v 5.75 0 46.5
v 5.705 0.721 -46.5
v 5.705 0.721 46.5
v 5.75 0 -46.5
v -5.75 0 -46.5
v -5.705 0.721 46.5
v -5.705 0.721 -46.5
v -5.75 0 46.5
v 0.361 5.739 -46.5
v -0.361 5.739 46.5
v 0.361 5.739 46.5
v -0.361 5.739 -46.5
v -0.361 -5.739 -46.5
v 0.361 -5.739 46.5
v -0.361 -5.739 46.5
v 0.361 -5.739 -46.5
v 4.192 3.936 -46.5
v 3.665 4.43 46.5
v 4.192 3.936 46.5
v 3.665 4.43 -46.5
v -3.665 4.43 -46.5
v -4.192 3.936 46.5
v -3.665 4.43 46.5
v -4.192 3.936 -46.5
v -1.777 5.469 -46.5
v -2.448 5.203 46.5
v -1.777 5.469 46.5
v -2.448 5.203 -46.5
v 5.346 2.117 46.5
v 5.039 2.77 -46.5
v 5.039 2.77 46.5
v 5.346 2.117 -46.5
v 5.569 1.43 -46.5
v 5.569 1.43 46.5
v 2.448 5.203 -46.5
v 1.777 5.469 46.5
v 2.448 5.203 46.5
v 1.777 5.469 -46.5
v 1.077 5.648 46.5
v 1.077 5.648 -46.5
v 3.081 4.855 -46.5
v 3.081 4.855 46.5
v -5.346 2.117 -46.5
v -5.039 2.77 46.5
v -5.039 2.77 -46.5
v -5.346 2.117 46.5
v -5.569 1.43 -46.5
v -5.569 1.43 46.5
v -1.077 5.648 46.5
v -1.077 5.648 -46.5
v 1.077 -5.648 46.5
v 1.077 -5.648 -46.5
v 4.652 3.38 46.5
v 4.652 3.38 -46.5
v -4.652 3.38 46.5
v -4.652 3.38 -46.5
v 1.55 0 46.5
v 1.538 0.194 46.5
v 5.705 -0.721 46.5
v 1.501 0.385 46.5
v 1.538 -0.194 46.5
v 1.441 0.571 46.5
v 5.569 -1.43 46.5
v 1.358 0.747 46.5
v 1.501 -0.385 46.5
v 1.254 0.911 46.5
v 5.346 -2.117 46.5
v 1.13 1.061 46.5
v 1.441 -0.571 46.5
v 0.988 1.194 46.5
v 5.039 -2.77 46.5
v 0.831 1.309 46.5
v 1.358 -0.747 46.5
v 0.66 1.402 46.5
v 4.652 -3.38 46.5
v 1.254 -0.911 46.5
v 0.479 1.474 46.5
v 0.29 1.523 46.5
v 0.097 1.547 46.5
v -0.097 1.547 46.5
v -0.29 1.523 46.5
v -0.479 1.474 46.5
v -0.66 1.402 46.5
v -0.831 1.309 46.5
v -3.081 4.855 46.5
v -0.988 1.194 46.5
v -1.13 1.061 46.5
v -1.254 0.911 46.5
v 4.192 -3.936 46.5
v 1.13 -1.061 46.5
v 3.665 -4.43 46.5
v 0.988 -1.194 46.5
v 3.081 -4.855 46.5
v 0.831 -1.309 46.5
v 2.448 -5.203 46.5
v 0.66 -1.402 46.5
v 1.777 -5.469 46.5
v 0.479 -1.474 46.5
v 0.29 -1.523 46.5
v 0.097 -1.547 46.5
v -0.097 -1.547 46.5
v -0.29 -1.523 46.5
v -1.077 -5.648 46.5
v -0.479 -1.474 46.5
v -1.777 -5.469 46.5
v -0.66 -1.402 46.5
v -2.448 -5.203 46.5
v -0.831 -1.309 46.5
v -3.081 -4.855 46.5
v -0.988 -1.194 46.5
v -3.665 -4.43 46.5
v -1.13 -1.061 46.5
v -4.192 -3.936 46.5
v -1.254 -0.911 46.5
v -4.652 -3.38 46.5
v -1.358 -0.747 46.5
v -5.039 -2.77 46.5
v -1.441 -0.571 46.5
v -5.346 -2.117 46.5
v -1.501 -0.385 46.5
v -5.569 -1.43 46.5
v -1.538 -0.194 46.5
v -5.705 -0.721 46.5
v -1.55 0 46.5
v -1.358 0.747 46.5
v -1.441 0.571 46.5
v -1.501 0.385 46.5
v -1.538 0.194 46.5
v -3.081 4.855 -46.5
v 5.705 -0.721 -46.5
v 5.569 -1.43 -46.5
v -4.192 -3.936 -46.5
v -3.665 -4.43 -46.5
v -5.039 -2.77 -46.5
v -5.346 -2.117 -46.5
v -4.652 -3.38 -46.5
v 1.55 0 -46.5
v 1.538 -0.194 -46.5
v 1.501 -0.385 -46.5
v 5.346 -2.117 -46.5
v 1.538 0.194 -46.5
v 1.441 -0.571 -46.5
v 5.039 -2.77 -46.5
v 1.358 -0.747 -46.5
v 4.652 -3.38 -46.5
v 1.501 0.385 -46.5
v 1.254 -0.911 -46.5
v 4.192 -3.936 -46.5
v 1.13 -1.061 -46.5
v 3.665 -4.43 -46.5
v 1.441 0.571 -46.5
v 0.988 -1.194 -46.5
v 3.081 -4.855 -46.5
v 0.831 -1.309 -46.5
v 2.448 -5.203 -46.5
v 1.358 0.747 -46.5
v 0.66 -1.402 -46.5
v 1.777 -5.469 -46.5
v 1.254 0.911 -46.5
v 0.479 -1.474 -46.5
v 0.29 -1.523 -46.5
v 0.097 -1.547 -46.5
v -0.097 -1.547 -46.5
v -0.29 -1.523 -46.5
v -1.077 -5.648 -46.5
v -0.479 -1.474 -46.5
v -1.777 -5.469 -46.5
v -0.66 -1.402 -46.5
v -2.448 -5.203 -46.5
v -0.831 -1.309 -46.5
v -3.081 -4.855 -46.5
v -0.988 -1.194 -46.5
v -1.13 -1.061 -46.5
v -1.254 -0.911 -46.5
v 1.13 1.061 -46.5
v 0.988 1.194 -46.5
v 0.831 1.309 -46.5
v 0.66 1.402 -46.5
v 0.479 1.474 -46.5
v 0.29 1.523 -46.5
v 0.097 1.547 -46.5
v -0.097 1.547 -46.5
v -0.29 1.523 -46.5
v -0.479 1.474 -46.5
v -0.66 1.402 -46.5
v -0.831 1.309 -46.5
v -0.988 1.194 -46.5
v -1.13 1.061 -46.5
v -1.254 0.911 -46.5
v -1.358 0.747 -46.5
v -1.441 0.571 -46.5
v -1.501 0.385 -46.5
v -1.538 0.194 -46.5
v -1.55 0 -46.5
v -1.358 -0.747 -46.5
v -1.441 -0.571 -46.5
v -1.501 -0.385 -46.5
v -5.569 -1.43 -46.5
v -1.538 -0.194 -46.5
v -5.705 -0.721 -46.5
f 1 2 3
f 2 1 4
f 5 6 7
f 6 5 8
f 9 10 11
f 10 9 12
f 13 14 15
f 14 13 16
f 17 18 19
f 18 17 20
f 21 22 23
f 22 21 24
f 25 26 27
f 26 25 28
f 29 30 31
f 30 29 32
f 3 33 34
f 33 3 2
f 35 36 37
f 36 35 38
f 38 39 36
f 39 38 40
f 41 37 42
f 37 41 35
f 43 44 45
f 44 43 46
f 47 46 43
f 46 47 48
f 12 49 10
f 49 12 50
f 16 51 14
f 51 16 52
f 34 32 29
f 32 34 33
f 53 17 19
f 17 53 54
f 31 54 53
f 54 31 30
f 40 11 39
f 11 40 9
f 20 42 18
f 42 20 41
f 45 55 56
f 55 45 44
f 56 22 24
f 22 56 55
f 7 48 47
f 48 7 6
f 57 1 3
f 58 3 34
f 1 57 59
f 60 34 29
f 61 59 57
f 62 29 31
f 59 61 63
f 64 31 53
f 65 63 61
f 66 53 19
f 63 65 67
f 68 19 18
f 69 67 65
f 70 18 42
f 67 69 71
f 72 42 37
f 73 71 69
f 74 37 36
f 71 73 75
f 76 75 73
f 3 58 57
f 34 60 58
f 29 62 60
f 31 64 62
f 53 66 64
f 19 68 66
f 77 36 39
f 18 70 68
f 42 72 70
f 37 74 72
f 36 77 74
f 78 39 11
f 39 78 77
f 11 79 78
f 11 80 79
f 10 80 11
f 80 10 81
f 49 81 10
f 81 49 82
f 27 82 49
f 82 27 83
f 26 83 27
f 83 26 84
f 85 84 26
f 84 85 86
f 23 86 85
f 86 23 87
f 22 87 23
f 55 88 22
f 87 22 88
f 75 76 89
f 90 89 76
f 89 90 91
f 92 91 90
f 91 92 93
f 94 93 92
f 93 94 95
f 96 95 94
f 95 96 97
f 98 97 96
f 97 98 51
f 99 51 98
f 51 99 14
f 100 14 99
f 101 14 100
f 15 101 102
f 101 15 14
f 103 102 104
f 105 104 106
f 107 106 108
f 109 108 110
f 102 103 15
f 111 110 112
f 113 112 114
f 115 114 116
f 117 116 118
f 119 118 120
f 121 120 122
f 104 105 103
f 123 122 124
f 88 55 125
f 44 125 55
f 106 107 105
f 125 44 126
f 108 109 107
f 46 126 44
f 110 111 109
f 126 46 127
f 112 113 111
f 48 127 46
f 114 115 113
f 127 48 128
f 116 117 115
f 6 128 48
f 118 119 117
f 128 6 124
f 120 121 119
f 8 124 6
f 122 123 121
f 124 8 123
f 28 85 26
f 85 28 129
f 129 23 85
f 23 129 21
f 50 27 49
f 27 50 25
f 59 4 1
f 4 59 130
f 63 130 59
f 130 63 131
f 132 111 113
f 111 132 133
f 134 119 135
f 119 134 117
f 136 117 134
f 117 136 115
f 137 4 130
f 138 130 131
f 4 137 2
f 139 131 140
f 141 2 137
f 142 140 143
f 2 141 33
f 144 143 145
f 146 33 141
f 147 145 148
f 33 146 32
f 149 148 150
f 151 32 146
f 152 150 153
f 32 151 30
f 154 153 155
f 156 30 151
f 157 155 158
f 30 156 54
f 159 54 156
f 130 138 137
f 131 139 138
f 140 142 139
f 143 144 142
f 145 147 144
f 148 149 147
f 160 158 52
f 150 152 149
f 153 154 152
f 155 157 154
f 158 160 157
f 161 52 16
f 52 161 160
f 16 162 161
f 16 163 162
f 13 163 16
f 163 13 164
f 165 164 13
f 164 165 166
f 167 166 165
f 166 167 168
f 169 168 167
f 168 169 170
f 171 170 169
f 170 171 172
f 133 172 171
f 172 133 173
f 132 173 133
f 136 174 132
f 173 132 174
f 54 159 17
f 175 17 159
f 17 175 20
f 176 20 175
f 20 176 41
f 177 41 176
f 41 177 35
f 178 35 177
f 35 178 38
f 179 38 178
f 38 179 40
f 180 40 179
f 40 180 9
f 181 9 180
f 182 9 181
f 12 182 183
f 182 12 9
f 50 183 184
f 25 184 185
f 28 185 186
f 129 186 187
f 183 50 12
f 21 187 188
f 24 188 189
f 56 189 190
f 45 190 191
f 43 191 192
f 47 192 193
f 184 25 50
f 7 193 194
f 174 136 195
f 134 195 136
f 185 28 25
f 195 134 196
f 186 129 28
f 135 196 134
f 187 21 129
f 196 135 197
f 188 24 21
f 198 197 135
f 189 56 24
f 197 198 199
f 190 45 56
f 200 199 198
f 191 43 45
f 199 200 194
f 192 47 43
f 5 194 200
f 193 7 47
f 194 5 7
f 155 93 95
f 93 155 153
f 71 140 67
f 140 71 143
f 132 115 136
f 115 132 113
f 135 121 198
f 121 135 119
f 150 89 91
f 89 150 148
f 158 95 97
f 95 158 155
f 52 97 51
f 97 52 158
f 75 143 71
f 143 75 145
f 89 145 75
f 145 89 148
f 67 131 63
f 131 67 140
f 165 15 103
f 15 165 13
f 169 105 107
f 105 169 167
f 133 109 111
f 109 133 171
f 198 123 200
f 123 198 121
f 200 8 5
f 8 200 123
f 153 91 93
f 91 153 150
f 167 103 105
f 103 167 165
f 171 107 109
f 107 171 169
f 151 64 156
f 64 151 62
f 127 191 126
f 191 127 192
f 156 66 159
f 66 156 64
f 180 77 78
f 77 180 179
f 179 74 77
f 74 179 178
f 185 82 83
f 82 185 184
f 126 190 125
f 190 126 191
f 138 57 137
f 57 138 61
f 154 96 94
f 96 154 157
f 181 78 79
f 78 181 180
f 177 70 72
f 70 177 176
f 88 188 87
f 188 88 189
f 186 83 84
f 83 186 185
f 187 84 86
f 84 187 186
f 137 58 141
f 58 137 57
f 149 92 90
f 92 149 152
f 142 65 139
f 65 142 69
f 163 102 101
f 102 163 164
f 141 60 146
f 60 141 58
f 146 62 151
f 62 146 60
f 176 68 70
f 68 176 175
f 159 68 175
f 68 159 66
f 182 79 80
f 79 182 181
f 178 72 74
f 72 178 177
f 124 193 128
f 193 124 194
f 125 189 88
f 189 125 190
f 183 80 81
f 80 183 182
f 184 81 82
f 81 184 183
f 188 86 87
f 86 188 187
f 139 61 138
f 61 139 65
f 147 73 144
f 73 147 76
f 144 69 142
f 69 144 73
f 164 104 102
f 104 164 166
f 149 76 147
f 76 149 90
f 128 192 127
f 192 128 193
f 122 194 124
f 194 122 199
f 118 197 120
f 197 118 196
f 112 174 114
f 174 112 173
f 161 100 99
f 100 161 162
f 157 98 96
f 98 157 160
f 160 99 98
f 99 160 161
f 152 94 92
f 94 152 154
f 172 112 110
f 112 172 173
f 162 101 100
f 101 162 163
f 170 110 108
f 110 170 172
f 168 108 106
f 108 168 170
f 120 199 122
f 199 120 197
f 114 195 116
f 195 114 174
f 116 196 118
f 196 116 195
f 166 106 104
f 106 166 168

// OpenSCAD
$fn = 50;


difference() {
	union() {
		translate(v = [0, 0, -46.5000000000]) {
			cylinder(h = 93, r = 5.7500000000);
		}
	}
	union() {
		translate(v = [0, 0, -100.0000000000]) {
			cylinder(h = 200, r = 1.5500000000);
		}
	}
}
